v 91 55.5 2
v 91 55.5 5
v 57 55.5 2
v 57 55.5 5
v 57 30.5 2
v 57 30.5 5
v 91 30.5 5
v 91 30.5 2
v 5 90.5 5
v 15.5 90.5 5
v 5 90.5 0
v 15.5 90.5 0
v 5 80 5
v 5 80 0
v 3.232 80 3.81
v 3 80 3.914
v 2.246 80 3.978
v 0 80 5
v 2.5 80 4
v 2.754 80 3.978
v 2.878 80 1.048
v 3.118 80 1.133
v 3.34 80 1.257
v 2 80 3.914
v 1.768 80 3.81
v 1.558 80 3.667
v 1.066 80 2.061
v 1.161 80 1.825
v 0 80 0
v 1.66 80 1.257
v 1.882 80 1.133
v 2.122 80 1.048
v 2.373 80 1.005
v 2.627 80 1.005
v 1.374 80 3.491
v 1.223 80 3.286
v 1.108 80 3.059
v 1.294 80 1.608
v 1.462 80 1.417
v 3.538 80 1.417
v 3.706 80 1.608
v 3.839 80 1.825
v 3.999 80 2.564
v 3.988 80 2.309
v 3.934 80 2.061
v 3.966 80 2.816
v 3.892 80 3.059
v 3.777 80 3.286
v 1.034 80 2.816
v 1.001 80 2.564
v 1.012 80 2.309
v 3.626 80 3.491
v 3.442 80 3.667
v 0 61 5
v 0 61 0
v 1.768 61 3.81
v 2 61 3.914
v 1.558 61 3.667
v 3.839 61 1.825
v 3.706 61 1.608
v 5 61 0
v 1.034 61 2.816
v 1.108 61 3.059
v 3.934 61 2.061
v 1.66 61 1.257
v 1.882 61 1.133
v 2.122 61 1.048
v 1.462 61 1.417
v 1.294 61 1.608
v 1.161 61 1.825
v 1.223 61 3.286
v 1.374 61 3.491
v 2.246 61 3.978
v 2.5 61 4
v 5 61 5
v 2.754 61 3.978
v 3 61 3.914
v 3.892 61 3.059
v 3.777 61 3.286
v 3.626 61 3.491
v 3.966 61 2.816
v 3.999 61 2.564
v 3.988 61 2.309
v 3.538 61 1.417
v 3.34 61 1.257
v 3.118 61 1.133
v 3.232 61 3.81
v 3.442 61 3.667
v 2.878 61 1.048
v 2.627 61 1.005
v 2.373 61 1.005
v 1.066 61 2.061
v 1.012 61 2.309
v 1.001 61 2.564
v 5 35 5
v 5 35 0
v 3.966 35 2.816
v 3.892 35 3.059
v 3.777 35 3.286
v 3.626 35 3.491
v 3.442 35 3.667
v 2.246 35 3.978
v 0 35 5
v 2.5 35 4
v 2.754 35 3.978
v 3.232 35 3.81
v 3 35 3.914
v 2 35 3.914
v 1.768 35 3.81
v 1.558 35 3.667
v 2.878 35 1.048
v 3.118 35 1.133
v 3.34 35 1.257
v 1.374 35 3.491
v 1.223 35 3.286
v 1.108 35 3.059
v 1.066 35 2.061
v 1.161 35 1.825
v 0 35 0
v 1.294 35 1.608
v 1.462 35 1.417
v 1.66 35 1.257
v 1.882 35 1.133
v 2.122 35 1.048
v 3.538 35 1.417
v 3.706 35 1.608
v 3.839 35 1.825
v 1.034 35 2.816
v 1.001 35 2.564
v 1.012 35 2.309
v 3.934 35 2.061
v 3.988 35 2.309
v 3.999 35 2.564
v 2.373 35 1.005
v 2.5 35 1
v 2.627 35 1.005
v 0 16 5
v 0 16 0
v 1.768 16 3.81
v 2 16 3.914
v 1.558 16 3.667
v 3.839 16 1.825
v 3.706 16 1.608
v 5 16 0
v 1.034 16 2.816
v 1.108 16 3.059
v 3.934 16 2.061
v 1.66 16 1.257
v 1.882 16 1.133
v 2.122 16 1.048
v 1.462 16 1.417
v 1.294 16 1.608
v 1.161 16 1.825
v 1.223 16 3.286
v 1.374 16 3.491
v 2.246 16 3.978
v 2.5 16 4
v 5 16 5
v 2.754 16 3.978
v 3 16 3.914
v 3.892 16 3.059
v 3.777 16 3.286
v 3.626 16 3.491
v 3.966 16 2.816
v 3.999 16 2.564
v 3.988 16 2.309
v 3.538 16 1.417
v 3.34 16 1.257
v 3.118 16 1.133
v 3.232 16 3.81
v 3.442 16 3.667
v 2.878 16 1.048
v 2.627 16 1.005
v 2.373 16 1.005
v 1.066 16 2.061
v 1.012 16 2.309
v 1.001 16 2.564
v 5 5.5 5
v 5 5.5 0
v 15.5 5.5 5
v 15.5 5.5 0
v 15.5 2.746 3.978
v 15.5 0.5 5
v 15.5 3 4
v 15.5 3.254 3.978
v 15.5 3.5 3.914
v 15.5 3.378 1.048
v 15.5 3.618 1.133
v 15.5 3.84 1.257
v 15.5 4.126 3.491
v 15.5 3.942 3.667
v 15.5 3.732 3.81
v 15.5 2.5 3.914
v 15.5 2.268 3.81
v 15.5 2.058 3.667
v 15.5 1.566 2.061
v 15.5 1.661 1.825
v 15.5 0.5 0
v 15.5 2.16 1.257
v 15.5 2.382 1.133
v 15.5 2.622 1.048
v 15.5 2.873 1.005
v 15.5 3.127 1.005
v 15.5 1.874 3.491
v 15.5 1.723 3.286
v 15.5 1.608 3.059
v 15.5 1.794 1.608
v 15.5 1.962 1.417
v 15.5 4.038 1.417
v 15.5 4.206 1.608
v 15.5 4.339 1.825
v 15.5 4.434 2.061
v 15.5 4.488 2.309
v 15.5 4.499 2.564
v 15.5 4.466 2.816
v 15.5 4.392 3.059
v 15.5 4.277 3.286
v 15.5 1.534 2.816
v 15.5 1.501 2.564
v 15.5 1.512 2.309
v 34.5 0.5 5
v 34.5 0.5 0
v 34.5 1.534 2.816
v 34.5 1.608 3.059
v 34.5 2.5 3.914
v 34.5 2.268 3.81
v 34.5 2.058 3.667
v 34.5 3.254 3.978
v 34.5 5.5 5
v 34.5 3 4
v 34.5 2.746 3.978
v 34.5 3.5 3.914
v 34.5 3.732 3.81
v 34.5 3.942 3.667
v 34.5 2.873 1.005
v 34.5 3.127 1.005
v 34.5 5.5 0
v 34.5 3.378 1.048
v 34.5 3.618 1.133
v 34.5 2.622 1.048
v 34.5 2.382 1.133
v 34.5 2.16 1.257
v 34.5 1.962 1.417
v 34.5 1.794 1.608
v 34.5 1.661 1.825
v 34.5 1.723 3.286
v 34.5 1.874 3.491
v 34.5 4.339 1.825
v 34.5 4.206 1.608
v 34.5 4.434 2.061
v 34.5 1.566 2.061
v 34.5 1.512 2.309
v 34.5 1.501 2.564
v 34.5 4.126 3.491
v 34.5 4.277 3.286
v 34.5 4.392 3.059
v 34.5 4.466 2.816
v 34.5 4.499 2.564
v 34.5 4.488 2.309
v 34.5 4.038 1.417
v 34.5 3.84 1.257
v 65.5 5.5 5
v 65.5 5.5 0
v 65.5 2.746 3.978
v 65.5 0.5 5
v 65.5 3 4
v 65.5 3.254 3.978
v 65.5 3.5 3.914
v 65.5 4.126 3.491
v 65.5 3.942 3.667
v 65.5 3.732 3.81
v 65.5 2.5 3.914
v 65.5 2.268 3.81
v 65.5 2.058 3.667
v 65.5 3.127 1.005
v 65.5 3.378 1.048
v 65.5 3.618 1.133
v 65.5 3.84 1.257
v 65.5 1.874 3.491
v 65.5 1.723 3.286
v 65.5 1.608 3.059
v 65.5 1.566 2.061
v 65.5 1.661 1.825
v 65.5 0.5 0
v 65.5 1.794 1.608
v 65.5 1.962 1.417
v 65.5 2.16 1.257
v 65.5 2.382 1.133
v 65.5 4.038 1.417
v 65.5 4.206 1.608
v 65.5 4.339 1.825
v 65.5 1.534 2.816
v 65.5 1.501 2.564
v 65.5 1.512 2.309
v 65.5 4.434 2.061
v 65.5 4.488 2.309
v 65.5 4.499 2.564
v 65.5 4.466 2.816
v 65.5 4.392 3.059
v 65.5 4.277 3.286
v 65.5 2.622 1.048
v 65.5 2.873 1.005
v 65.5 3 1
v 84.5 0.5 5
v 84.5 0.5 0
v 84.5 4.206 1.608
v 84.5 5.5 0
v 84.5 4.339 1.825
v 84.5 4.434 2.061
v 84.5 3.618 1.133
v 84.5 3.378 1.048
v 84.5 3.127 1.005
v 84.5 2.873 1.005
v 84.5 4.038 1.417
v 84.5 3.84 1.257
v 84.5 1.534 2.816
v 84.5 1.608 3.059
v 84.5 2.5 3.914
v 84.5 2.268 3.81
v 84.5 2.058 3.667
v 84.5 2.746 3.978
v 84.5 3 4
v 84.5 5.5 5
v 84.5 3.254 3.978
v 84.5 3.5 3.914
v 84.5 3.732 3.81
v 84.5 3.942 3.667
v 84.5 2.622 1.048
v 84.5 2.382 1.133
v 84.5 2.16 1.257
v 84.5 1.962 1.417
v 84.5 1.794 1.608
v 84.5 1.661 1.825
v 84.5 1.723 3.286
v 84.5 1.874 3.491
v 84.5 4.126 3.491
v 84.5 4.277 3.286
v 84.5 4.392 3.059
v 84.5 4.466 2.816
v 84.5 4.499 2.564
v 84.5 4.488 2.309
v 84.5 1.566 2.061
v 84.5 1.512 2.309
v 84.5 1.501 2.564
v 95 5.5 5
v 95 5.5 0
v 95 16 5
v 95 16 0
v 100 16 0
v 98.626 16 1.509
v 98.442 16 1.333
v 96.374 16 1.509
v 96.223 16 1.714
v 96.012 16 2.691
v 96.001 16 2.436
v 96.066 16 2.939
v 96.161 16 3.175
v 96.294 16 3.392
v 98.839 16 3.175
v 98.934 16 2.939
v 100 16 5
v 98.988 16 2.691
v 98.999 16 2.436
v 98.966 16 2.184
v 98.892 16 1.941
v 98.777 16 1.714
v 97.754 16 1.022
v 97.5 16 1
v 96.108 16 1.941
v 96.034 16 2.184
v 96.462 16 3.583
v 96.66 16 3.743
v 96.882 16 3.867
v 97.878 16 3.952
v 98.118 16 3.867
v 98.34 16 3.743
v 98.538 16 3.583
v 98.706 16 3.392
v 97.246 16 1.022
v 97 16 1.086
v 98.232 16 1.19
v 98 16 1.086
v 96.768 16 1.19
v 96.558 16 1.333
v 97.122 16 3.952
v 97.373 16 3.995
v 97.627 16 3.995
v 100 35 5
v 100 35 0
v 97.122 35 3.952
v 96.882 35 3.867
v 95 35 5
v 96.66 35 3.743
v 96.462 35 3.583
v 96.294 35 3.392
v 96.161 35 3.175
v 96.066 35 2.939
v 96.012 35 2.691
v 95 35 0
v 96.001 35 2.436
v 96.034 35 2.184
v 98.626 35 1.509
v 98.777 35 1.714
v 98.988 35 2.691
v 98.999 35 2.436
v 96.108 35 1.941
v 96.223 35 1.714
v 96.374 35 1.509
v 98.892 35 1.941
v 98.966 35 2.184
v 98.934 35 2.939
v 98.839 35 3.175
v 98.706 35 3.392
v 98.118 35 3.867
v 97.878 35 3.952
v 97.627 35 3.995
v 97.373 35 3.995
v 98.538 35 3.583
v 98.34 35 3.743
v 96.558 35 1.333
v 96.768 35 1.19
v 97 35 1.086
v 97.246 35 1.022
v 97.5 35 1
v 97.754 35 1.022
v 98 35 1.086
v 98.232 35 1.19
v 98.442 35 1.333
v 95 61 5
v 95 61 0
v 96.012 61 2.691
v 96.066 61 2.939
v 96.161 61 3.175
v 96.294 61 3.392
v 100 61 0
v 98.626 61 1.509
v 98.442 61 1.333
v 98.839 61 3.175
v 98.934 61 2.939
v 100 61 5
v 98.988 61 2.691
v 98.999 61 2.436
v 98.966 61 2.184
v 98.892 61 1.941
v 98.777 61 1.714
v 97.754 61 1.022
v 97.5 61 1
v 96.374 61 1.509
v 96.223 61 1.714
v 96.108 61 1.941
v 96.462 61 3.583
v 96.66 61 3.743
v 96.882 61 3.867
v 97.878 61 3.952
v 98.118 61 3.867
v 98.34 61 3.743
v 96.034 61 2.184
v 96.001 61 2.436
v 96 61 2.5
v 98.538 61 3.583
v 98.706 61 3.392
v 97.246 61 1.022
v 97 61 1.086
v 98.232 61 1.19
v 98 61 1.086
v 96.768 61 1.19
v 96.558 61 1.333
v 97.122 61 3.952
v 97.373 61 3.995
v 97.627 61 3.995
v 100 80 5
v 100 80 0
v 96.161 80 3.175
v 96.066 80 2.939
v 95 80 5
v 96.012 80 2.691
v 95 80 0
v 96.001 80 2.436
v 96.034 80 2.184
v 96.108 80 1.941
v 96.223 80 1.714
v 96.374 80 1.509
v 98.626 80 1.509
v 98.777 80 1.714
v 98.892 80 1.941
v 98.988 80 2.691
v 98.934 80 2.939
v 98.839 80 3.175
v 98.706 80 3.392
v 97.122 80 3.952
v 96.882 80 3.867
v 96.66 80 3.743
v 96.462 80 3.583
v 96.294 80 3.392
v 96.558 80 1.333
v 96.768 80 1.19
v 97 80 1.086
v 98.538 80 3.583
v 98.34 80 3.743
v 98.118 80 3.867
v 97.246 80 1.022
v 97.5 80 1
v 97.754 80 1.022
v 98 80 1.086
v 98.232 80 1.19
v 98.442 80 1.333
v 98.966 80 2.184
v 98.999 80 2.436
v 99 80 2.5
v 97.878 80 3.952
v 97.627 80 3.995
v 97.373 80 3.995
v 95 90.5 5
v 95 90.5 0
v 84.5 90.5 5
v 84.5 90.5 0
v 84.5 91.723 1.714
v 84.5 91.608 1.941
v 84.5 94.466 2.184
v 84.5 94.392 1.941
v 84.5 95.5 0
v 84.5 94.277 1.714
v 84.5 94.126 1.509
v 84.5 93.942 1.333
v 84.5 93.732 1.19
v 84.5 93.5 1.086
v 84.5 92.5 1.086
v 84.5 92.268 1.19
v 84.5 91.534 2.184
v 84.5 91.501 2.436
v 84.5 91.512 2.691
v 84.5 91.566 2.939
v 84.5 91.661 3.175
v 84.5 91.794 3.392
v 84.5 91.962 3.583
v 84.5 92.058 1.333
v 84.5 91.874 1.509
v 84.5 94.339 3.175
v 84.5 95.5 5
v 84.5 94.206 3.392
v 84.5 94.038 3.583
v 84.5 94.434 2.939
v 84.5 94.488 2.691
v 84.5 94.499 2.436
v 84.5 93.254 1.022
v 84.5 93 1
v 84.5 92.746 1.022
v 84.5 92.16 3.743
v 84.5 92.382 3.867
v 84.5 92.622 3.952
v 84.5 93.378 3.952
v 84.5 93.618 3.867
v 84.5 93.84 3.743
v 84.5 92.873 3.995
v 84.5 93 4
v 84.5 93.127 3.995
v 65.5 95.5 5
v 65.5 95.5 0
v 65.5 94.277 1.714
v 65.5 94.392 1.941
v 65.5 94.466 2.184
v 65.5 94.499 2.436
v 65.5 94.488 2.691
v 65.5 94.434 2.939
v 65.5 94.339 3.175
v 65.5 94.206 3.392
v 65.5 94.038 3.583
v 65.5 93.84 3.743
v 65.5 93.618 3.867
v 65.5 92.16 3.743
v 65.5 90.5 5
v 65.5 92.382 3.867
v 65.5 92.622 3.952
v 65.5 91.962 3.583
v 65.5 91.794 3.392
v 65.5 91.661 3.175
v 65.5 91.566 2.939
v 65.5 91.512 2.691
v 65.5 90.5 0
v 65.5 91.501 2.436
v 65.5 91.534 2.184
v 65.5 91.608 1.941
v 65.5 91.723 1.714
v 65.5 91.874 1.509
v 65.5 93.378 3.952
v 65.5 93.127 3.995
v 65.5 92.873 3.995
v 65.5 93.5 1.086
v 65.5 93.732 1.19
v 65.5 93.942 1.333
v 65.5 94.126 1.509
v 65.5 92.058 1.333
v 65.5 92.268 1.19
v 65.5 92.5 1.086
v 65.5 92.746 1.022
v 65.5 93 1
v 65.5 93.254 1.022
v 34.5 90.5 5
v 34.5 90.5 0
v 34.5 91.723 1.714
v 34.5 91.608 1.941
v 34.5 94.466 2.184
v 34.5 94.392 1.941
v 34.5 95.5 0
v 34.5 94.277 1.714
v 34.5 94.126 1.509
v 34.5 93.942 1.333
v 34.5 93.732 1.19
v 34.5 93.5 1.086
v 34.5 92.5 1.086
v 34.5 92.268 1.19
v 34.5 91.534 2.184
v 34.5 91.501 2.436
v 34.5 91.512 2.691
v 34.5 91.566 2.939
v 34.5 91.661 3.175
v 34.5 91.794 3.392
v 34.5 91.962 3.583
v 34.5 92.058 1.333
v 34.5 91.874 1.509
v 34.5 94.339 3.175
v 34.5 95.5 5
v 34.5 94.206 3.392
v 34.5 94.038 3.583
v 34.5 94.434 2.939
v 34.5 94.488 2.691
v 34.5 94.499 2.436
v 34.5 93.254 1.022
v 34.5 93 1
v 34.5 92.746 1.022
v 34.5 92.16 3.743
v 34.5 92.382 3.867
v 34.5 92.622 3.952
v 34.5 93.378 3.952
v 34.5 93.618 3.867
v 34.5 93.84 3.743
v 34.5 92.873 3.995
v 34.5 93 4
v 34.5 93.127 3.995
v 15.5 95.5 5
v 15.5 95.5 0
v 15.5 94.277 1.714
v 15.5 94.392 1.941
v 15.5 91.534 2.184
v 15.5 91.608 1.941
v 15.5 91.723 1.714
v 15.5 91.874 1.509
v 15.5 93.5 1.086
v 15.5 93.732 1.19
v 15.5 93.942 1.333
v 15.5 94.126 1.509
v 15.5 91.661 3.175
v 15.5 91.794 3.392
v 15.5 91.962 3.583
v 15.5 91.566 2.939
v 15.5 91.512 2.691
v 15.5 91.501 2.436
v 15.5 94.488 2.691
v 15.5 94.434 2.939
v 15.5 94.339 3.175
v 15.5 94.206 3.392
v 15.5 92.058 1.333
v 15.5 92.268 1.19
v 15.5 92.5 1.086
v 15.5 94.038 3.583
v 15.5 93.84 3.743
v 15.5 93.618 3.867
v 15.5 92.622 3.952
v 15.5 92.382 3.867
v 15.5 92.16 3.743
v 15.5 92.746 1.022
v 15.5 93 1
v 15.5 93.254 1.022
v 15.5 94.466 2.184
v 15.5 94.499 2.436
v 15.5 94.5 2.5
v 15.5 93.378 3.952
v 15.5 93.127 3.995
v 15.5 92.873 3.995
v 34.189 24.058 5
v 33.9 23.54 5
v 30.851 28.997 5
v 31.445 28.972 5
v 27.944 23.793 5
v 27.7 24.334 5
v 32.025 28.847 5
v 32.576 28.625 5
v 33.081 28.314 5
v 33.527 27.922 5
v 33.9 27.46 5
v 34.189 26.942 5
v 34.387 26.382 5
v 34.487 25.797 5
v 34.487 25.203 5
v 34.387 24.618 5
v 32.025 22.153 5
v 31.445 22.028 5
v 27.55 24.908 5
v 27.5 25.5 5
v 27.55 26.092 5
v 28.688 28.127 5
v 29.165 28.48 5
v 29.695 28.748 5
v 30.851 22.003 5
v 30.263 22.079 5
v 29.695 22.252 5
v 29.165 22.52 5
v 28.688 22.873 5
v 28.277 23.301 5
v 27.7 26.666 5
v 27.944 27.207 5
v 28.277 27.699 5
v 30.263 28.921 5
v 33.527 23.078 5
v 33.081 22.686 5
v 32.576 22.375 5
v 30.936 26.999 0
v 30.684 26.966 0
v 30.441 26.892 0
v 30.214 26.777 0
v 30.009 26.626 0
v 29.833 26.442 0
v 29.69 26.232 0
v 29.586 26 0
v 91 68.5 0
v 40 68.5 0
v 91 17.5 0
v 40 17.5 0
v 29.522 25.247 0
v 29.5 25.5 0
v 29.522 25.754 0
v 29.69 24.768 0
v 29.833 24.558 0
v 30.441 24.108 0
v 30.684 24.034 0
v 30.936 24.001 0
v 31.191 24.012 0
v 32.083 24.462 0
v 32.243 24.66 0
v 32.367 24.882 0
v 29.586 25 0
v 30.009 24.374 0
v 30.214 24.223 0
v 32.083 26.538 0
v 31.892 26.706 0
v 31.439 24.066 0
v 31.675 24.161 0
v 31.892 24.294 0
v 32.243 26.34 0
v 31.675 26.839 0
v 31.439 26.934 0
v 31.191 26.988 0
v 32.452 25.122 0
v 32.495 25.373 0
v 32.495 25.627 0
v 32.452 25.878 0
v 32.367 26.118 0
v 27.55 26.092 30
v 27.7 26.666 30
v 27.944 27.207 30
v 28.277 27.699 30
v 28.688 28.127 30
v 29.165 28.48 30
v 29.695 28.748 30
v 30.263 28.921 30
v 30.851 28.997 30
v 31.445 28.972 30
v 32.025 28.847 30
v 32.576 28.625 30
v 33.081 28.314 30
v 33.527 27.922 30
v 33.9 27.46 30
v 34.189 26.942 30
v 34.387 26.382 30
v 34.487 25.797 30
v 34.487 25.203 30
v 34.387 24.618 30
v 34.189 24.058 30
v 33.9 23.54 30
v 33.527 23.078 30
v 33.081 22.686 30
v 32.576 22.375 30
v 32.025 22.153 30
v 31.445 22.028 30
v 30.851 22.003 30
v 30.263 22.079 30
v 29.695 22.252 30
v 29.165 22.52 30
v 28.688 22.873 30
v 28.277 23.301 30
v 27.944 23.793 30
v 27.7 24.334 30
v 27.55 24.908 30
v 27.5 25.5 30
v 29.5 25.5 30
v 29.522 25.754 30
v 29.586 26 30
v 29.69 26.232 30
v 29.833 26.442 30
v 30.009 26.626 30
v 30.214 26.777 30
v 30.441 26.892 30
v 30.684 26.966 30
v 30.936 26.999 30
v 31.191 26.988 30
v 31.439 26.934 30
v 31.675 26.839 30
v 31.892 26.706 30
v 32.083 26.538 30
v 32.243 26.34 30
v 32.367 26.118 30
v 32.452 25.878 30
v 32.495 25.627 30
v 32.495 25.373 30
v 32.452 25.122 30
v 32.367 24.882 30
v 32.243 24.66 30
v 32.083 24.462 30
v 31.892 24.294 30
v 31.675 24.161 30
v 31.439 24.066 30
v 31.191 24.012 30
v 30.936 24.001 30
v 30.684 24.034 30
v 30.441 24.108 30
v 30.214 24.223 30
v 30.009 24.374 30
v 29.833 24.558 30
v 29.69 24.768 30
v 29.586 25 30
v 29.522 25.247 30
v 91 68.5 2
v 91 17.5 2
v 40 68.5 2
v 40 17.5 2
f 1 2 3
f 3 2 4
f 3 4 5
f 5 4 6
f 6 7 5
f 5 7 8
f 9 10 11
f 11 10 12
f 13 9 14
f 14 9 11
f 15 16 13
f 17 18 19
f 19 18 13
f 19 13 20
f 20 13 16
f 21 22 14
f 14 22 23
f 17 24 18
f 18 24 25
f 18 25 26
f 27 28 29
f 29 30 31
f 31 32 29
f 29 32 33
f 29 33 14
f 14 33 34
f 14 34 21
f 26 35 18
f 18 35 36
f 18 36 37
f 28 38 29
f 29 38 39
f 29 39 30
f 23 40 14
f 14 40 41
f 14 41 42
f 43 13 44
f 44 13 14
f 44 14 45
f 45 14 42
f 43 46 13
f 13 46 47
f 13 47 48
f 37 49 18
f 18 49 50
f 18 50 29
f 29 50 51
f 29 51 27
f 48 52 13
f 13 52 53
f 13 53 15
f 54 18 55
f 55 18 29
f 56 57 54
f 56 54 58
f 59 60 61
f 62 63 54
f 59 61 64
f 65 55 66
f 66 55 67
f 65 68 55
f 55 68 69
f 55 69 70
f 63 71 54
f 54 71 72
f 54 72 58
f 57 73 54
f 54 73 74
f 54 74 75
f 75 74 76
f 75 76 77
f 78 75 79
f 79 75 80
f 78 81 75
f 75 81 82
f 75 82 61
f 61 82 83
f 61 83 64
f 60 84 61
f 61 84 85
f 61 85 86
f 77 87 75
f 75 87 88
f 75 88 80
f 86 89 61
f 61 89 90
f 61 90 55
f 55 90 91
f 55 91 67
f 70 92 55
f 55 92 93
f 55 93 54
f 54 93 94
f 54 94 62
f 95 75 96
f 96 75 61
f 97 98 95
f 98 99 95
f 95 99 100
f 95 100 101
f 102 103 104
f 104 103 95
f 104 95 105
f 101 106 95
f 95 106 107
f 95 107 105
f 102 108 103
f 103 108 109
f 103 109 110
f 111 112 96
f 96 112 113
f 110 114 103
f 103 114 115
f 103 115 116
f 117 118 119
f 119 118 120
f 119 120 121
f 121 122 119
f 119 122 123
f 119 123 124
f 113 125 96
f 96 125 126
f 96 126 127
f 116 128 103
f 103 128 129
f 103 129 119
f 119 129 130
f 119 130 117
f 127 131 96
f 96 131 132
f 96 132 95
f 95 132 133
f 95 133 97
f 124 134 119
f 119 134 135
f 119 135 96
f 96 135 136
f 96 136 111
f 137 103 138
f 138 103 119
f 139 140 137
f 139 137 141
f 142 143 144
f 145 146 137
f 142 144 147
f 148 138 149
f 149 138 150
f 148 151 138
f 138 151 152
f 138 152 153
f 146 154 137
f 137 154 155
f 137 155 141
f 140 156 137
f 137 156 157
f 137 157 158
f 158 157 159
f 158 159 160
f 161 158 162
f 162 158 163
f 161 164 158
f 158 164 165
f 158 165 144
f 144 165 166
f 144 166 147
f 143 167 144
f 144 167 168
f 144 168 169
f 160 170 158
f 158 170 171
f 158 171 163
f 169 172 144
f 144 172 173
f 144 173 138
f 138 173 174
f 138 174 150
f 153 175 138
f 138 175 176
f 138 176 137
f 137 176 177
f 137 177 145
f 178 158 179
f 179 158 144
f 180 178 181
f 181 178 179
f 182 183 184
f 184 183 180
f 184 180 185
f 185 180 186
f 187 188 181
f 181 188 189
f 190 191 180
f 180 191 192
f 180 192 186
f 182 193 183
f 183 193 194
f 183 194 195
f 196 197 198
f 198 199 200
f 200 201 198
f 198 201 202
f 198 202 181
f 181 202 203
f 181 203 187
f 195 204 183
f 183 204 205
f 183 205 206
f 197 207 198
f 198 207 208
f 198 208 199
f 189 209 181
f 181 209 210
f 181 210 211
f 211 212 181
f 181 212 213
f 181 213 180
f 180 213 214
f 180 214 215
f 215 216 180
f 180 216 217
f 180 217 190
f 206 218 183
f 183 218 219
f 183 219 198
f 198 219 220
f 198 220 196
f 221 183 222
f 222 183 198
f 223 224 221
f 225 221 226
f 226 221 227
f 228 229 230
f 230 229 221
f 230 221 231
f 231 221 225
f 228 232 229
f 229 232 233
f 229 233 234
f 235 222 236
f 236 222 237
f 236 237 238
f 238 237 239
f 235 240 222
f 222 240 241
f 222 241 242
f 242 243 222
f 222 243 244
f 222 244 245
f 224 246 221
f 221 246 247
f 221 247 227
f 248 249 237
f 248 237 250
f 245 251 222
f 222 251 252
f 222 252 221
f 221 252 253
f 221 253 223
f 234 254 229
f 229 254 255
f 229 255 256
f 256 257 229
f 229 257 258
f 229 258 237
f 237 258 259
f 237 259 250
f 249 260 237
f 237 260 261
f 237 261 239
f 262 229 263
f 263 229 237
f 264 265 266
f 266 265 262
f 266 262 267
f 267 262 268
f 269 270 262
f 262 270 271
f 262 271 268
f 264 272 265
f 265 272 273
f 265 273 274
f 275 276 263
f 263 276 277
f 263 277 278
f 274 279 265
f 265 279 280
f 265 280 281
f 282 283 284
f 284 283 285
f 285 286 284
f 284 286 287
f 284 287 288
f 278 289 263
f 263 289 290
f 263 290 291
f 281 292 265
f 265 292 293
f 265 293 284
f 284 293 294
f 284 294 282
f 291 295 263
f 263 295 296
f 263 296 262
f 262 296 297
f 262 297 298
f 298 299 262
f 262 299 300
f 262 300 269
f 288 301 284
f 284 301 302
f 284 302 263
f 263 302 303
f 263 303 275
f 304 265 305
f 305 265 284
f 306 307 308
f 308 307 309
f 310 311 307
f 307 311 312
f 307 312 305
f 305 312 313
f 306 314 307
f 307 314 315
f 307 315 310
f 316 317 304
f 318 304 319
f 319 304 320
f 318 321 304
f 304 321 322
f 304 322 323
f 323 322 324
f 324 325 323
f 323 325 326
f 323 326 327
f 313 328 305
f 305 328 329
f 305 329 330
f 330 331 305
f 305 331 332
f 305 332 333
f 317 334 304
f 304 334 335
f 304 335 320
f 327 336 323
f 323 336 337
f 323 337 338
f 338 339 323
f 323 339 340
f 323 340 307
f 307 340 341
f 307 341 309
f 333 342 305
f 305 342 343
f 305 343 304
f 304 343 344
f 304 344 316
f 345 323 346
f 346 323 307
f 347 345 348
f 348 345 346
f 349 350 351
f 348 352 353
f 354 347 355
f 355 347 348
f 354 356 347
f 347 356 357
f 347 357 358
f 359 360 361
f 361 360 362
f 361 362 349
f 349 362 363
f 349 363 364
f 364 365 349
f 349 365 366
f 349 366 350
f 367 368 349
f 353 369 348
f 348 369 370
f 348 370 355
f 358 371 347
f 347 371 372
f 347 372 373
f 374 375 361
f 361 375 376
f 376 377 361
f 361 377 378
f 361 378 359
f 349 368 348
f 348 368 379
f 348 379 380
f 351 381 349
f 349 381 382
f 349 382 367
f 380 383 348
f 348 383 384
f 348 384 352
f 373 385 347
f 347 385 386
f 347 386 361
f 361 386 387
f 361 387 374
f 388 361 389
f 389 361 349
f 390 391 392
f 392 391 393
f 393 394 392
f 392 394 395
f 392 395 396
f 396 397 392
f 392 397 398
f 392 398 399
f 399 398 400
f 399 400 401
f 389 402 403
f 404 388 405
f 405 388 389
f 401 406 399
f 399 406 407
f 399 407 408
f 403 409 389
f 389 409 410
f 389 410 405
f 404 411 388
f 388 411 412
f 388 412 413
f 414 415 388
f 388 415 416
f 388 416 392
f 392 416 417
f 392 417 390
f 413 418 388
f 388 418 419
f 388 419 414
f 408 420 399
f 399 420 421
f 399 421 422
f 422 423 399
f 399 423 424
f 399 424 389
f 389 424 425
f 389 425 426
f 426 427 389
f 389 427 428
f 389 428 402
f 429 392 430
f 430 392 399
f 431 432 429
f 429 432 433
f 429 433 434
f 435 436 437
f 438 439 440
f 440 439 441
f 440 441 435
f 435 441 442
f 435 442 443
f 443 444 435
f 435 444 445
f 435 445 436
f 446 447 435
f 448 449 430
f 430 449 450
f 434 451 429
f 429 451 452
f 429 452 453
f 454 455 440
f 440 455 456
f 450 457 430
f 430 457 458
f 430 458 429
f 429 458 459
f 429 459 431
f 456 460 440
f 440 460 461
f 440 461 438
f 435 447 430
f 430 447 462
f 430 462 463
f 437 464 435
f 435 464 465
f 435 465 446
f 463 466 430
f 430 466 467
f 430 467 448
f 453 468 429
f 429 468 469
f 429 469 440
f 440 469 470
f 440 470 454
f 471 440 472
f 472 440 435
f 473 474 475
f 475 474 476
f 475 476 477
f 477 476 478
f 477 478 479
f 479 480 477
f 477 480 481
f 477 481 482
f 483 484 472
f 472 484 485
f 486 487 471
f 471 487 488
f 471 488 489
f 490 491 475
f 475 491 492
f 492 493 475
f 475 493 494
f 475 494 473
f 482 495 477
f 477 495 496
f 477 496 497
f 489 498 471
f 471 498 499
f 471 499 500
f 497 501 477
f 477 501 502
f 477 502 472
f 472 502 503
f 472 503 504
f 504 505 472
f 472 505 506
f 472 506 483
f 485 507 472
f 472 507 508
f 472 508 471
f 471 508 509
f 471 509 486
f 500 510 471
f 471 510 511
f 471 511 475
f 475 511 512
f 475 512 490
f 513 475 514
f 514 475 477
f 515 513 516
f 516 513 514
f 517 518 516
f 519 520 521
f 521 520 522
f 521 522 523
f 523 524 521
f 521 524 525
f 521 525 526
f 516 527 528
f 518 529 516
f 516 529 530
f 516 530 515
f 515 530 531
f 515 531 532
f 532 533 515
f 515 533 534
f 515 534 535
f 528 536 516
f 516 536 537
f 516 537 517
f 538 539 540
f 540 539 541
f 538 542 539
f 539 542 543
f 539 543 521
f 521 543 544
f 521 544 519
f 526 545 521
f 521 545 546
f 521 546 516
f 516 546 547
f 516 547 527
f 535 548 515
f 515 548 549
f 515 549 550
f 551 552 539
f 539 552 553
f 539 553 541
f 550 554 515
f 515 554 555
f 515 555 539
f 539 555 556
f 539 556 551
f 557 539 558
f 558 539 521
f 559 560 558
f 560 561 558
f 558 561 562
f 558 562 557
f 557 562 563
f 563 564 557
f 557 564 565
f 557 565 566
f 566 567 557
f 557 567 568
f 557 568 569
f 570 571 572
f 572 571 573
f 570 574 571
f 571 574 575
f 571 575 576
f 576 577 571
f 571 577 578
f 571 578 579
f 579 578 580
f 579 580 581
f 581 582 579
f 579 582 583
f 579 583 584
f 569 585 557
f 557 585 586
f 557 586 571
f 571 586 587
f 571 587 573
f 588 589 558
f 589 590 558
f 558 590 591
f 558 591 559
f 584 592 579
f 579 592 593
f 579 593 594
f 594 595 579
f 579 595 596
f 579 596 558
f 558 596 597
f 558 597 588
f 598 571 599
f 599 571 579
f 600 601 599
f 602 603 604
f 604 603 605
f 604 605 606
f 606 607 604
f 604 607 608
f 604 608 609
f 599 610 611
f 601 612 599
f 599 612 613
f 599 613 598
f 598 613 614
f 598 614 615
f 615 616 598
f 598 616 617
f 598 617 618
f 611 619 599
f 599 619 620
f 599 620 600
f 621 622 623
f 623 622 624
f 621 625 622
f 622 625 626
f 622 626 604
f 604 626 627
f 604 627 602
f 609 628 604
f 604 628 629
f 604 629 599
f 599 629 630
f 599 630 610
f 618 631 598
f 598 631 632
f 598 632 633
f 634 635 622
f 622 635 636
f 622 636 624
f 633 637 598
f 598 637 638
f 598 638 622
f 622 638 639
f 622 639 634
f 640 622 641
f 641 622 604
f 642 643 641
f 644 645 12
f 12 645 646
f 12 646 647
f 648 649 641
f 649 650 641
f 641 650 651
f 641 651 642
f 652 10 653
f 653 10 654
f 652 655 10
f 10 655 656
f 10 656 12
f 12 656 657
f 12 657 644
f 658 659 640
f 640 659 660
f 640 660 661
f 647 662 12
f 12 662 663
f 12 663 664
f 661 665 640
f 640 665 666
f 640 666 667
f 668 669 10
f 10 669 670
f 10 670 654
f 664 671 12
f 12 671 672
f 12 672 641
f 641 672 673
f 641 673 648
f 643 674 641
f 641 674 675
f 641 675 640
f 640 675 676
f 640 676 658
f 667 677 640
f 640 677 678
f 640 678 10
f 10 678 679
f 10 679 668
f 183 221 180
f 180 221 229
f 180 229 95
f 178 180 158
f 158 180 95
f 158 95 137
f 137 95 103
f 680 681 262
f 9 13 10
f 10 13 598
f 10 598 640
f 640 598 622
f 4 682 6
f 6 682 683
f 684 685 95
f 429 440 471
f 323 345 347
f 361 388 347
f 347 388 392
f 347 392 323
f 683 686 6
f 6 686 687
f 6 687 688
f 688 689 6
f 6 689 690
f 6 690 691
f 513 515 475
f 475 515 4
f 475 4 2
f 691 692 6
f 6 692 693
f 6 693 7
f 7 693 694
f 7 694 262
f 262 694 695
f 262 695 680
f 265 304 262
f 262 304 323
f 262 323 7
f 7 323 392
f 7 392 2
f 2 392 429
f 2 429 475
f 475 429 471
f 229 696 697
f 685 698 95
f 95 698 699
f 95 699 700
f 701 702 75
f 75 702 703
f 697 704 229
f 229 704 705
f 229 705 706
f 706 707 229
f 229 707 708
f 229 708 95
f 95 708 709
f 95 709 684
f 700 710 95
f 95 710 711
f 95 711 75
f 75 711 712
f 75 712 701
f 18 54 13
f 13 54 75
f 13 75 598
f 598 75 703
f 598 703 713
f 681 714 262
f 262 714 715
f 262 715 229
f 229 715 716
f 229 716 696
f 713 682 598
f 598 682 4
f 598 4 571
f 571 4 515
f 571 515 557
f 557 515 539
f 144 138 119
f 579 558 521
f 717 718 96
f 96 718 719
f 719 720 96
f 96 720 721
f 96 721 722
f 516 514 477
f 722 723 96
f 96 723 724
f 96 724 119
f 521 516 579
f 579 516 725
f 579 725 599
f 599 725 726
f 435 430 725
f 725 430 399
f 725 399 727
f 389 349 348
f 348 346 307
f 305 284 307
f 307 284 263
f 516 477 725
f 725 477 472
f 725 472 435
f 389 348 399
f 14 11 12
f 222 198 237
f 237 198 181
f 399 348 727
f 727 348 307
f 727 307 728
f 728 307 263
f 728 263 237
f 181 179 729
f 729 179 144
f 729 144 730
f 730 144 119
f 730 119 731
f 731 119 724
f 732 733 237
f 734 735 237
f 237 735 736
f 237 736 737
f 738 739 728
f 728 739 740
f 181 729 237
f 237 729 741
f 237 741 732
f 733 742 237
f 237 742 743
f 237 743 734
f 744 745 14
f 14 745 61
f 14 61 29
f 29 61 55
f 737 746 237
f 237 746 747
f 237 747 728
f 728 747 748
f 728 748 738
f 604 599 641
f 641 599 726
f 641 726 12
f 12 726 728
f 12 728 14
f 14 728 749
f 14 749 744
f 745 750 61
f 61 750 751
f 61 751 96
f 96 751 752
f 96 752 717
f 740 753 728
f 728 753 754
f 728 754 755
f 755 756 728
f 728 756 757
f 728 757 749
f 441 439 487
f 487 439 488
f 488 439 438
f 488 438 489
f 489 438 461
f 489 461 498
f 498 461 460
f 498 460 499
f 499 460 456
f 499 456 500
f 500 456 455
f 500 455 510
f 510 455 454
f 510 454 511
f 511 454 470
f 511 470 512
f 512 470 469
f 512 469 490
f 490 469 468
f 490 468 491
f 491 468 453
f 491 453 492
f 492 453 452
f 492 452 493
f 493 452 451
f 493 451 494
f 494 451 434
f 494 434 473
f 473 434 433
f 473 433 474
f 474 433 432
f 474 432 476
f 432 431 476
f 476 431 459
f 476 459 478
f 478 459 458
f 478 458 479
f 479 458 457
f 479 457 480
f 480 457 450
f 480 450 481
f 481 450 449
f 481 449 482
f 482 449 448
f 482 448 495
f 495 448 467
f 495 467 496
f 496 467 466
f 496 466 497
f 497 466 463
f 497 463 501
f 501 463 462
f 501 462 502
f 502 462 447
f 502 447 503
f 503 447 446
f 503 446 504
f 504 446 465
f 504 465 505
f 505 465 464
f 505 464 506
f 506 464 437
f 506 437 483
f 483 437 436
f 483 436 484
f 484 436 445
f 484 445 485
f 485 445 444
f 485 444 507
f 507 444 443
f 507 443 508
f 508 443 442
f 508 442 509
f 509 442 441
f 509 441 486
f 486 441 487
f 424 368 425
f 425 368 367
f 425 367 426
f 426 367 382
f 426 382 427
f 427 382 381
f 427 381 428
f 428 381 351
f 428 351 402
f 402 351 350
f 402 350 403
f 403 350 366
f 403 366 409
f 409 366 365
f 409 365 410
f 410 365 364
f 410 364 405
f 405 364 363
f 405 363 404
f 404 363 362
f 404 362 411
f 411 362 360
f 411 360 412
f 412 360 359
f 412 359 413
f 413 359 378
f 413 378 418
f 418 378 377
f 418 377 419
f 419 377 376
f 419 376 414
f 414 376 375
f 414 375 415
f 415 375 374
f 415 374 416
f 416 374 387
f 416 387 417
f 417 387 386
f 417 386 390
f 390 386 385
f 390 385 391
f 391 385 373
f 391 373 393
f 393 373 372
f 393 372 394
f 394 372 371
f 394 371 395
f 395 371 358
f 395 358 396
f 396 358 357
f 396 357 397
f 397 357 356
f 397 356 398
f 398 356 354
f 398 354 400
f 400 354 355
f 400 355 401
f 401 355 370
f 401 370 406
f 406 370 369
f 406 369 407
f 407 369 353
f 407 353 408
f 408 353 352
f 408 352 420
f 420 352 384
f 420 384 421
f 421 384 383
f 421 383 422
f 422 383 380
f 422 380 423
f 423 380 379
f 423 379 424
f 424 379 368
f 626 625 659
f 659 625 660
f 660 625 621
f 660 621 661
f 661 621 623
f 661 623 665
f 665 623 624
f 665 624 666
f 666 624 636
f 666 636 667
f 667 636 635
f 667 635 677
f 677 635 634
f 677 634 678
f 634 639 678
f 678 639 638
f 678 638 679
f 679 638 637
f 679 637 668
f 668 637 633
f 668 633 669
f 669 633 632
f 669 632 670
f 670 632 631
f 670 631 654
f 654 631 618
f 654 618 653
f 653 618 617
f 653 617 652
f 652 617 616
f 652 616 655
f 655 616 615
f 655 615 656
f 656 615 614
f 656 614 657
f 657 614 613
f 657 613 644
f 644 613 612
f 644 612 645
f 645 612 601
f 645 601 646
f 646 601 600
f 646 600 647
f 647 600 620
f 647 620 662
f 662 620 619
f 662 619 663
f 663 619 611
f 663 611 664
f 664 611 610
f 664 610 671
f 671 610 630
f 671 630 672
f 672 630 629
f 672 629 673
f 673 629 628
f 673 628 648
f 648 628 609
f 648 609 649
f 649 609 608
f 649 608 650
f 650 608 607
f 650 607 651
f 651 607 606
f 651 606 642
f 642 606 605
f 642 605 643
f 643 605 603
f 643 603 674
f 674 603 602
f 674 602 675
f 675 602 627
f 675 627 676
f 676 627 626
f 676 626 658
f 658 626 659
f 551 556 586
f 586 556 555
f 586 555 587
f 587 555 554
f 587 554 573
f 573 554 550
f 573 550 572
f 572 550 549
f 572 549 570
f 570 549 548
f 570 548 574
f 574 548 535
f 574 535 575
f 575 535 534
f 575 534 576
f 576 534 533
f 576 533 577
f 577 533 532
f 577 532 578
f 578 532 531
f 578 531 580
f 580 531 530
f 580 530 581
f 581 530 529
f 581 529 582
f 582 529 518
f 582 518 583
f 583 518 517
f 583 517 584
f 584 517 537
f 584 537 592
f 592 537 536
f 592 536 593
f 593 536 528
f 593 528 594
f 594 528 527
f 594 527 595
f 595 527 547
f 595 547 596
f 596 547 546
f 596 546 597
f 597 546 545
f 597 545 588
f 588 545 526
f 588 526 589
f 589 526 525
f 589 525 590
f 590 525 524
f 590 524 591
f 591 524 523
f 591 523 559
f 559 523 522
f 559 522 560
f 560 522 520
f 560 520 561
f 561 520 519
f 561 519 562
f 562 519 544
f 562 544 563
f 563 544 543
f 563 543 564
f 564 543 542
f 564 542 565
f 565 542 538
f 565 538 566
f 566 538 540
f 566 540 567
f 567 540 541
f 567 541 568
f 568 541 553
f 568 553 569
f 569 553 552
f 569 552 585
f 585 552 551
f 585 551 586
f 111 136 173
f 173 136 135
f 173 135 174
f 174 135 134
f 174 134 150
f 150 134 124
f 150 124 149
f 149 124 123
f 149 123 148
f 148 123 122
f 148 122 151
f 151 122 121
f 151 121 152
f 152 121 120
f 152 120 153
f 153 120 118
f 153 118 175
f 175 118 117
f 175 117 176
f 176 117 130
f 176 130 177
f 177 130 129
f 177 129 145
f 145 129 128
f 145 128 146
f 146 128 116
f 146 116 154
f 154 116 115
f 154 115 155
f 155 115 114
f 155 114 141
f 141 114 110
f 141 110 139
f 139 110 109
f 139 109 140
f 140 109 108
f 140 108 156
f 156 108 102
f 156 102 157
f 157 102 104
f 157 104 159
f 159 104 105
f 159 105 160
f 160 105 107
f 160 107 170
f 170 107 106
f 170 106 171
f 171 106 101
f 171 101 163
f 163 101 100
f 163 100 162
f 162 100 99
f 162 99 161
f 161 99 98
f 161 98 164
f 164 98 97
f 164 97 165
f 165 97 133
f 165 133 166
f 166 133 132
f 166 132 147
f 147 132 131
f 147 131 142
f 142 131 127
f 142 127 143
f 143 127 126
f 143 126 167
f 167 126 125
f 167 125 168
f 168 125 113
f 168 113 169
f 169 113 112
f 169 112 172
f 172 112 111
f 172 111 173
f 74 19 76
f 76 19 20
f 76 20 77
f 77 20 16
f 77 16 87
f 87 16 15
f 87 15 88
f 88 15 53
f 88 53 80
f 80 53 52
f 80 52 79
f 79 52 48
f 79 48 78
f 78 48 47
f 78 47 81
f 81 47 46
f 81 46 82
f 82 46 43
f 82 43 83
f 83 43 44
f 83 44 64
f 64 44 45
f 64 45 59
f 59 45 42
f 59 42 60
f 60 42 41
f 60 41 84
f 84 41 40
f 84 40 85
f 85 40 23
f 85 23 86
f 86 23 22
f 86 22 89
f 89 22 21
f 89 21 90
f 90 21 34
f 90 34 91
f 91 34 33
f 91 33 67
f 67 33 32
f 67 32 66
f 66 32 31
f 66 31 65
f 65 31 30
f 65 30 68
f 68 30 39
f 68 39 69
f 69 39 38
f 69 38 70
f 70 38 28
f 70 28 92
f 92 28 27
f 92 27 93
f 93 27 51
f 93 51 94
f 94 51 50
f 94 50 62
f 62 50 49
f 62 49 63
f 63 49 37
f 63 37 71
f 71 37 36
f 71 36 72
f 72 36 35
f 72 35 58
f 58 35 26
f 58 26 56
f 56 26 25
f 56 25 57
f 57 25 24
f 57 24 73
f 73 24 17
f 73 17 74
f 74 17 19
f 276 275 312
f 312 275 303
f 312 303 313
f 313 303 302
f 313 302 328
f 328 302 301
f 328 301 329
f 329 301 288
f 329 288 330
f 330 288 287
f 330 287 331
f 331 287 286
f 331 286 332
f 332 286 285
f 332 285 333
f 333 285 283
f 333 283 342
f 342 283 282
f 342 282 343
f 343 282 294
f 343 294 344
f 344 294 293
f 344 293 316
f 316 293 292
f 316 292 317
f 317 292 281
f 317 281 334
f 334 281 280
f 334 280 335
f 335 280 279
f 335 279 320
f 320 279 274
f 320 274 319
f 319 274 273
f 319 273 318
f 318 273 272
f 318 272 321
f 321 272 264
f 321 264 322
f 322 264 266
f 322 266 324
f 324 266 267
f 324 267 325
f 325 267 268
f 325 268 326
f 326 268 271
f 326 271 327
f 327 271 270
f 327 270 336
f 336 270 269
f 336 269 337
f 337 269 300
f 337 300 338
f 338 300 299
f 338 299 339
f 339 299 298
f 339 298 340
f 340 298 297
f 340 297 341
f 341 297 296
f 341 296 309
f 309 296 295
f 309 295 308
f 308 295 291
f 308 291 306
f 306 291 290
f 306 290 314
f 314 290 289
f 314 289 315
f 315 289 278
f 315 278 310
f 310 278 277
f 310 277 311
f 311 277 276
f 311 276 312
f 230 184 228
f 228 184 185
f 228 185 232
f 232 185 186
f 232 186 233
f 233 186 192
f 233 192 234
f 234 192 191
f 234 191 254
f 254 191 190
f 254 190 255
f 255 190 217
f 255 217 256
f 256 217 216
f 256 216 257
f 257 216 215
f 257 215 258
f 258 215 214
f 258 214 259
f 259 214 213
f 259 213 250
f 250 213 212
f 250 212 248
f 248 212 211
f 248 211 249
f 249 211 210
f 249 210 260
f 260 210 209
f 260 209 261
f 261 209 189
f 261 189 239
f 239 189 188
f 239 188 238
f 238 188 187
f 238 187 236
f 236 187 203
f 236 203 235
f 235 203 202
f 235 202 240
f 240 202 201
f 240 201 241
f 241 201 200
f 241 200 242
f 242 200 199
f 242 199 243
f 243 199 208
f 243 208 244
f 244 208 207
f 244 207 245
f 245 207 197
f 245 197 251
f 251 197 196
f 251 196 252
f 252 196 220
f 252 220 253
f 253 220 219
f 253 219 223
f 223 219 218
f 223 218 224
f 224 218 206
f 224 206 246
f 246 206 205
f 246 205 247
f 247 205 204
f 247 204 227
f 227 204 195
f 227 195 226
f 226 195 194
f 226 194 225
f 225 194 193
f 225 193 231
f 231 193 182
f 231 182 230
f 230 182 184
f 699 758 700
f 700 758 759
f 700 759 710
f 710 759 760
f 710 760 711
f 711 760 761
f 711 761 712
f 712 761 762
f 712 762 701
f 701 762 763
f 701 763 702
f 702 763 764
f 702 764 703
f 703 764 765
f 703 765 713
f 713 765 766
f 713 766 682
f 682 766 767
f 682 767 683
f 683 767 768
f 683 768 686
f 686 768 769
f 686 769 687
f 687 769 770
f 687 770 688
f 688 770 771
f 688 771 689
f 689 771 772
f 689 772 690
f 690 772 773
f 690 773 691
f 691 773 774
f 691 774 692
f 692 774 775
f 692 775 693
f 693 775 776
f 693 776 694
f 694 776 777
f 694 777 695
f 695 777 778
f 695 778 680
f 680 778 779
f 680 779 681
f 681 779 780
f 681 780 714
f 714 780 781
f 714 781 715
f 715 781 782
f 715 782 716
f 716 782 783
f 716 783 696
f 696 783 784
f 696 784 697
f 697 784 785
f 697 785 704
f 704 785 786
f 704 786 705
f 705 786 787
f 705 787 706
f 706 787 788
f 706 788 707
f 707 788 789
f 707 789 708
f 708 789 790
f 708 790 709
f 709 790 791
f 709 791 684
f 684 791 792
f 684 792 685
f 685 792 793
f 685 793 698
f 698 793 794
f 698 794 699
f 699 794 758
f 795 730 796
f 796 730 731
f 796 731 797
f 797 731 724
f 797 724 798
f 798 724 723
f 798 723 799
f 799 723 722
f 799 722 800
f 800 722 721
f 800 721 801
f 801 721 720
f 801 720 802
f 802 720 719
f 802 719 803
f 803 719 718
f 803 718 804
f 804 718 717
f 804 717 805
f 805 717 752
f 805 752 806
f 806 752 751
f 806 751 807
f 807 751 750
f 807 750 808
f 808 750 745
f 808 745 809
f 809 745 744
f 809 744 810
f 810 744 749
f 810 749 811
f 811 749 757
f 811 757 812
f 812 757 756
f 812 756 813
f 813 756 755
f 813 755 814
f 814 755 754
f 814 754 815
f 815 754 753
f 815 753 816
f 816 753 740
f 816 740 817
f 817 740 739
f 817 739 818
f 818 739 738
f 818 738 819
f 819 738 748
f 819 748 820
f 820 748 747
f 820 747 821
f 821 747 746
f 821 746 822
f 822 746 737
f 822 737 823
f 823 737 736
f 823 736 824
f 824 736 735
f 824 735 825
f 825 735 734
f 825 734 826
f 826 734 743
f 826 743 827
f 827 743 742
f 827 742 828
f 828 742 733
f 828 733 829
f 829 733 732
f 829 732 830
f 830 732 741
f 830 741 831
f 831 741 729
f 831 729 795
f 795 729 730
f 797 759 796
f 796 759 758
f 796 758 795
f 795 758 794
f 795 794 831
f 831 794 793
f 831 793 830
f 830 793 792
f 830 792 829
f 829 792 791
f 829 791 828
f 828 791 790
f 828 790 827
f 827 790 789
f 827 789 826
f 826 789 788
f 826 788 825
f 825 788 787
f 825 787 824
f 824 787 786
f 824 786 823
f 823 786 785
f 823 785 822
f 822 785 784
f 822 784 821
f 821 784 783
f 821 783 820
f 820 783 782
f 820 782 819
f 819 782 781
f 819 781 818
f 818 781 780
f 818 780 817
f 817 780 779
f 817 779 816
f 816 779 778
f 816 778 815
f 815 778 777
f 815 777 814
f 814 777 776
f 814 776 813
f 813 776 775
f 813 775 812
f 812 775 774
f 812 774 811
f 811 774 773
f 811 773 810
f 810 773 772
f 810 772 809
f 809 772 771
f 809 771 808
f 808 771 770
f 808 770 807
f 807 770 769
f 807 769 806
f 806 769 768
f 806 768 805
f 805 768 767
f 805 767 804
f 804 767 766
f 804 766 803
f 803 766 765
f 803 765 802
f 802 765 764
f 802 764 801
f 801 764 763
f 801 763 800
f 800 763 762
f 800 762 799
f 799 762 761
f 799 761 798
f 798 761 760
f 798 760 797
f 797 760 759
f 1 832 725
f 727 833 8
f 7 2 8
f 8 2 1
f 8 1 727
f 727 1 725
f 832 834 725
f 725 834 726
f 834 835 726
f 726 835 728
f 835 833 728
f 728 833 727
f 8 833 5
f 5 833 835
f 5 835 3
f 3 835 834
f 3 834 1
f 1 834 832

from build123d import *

# Parameters (mm, degrees)
BOSS_EXTRU_1_DEPTH      = 5
ENL_V_MAT_EXTRU_1_REACH = 129.849
ESQUISSE2_R             = 1.5
ENL_V_MAT_EXTRU_2_REACH = 136.797
ESQUISSE3_R             = 1.5
ENL_V_MAT_EXTRU_3_REACH = 129.849
ESQUISSE4_R             = 1.5
ENL_V_MAT_EXTRU_4_REACH = 129.615
ESQUISSE5_R             = 1.5
ESQUISSE6_R             = 3.5
ESQUISSE6_R_2           = 1.5
BOSS_EXTRU_2_DEPTH      = 30
ENL_V_MAT_EXTRU_5_REACH = 142.518
ESQUISSE7_R             = 1.5
ESQUISSE8_W             = 34
ESQUISSE8_H             = 25
ENL_V_MAT_EXTRU_6_DEPTH = 5
ESQUISSE9_W             = 51
ESQUISSE9_H             = 51
ENL_V_MAT_EXTRU_7_DEPTH = 2


with BuildPart() as part:
    # Esquisse1 → Boss.-Extru.1 (new body)
    with BuildSketch(Plane.XY):
        Polygon((15.5, 95.5), (15.5, 90.5), (5, 90.5), (5, 80), (0, 80), (0, 61), (5, 61), (5, 35), (0, 35), (0, 16), (5, 16), (5, 5.5), (15.5, 5.5), (15.5, 0.5), (34.5, 0.5), (34.5, 5.5), (65.5, 5.5), (65.5, 0.5), (84.5, 0.5), (84.5, 5.5), (95, 5.5), (95, 16), (100, 16), (100, 35), (95, 35), (95, 61), (100, 61), (100, 80), (95, 80), (95, 90.5), (84.5, 90.5), (84.5, 95.5), (65.5, 95.5), (65.5, 90.5), (34.5, 90.5), (34.5, 95.5), align=None)
    extrude(amount=BOSS_EXTRU_1_DEPTH)

    # Enlèv. mat.-Extru.1: up to this face of the body (flat: up to its plane)
    enl_v_mat_extru_1_end = Plane(part.part.faces().sort_by_distance((97.5, 80, 2.5))[0])
    # Esquisse2 → Enlèv. mat.-Extru.1 (cut, up to the picked face)
    with BuildSketch(Plane.XZ.offset(-16), mode=Mode.PRIVATE) as enl_v_mat_extru_1_sk1:
        with Locations((97.5, 2.5)):
            Circle(ESQUISSE2_R)
    enl_v_mat_extru_1_tool1 = split(extrude(enl_v_mat_extru_1_sk1.sketch, amount=-ENL_V_MAT_EXTRU_1_REACH, mode=Mode.PRIVATE), bisect_by=enl_v_mat_extru_1_end, keep=Keep.BOTH, mode=Mode.PRIVATE)
    add(enl_v_mat_extru_1_tool1.solids().sort_by(Axis((97.5, 16, 2.5), (0, 1, 0)))[0], mode=Mode.SUBTRACT)

    # Enlèv. mat.-Extru.2: up to this face of the body (flat: up to its plane)
    enl_v_mat_extru_2_end = Plane(part.part.faces().sort_by_distance((5, 85.25, 2.5))[0])
    # Esquisse3 → Enlèv. mat.-Extru.2 (cut, up to the picked face)
    with BuildSketch(Plane(origin=(95, 0, 0), x_dir=(0, 0, -1), z_dir=(1, 0, 0)), mode=Mode.PRIVATE) as enl_v_mat_extru_2_sk1:
        with Locations(Location((-2.5, 93, 0), (0, 0, 90))):
            Circle(ESQUISSE3_R)
    enl_v_mat_extru_2_tool1 = split(extrude(enl_v_mat_extru_2_sk1.sketch, amount=-ENL_V_MAT_EXTRU_2_REACH, mode=Mode.PRIVATE), bisect_by=enl_v_mat_extru_2_end, keep=Keep.BOTH, mode=Mode.PRIVATE)
    add(enl_v_mat_extru_2_tool1.solids().sort_by(Axis((95, 93, 2.5), (-1, 0, 0)))[0], mode=Mode.SUBTRACT)

    # Enlèv. mat.-Extru.3: up to this face of the body (flat: up to its plane)
    enl_v_mat_extru_3_end = Plane(part.part.faces().sort_by_distance((2.5, 16, 2.5))[0])
    # Esquisse4 → Enlèv. mat.-Extru.3 (cut, up to the picked face)
    with BuildSketch(Plane(origin=(0, 80, 0), x_dir=(1, 0, 0), z_dir=(0, 1, 0)), mode=Mode.PRIVATE) as enl_v_mat_extru_3_sk1:
        with Locations(Location((2.5, -2.5, 0), (0, 0, 270))):
            Circle(ESQUISSE4_R)
    enl_v_mat_extru_3_tool1 = split(extrude(enl_v_mat_extru_3_sk1.sketch, amount=-ENL_V_MAT_EXTRU_3_REACH, mode=Mode.PRIVATE), bisect_by=enl_v_mat_extru_3_end, keep=Keep.BOTH, mode=Mode.PRIVATE)
    add(enl_v_mat_extru_3_tool1.solids().sort_by(Axis((2.5, 80, 2.5), (0, -1, 0)))[0], mode=Mode.SUBTRACT)

    # Enlèv. mat.-Extru.4: up to this face of the body (flat: up to its plane)
    enl_v_mat_extru_4_end = Plane(part.part.faces().sort_by_distance((84.5, 3, 2.5))[0])
    # Esquisse5 → Enlèv. mat.-Extru.4 (cut, up to the picked face)
    with BuildSketch(Plane.ZY.offset(-15.5), mode=Mode.PRIVATE) as enl_v_mat_extru_4_sk1:
        with Locations((2.5, 3)):
            Circle(ESQUISSE5_R)
    enl_v_mat_extru_4_tool1 = split(extrude(enl_v_mat_extru_4_sk1.sketch, amount=-ENL_V_MAT_EXTRU_4_REACH, mode=Mode.PRIVATE), bisect_by=enl_v_mat_extru_4_end, keep=Keep.BOTH, mode=Mode.PRIVATE)
    add(enl_v_mat_extru_4_tool1.solids().sort_by(Axis((15.5, 3, 2.5), (1, 0, 0)))[0], mode=Mode.SUBTRACT)

    # Esquisse6 → Boss.-Extru.2 (add)
    with BuildSketch(Plane(origin=(0, 0, 0), x_dir=(-1, 0, 0), z_dir=(0, 0, -1))):
        with Locations((-31, 25.5)):
            Circle(ESQUISSE6_R)
        with Locations((-31, 25.5)):
            Circle(ESQUISSE6_R_2, mode=Mode.SUBTRACT)
    extrude(amount=-BOSS_EXTRU_2_DEPTH)

    # Esquisse7 → Enlèv. mat.-Extru.5 (cut, up to next)
    with BuildSketch(Plane.XY.offset(5), mode=Mode.PRIVATE) as enl_v_mat_extru_5_sk1:
        with Locations(Location((31, 25.5, 0), (0, 0, 180))):
            Circle(ESQUISSE7_R)
    enl_v_mat_extru_5_tool1 = extrude(enl_v_mat_extru_5_sk1.sketch, amount=-ENL_V_MAT_EXTRU_5_REACH, mode=Mode.PRIVATE) & part.part
    add(enl_v_mat_extru_5_tool1.solids().sort_by_distance((31, 25.5, 5))[0], mode=Mode.SUBTRACT)

    # Esquisse8 → Enlèv. mat.-Extru.6 (cut)
    with BuildSketch(Plane(origin=(0, 0, 0), x_dir=(-1, 0, 0), z_dir=(0, 0, -1))):
        with Locations((-74, 43)):
            Rectangle(ESQUISSE8_W, ESQUISSE8_H)
    extrude(amount=-ENL_V_MAT_EXTRU_6_DEPTH, mode=Mode.SUBTRACT)

    # Esquisse9 → Enlèv. mat.-Extru.7 (cut)
    with BuildSketch(Plane(origin=(0, 0, 0), x_dir=(-1, 0, 0), z_dir=(0, 0, -1))):
        with Locations((-65.5, 43)):
            Rectangle(ESQUISSE9_W, ESQUISSE9_H)
    extrude(amount=-ENL_V_MAT_EXTRU_7_DEPTH, mode=Mode.SUBTRACT)


solid = part.part
